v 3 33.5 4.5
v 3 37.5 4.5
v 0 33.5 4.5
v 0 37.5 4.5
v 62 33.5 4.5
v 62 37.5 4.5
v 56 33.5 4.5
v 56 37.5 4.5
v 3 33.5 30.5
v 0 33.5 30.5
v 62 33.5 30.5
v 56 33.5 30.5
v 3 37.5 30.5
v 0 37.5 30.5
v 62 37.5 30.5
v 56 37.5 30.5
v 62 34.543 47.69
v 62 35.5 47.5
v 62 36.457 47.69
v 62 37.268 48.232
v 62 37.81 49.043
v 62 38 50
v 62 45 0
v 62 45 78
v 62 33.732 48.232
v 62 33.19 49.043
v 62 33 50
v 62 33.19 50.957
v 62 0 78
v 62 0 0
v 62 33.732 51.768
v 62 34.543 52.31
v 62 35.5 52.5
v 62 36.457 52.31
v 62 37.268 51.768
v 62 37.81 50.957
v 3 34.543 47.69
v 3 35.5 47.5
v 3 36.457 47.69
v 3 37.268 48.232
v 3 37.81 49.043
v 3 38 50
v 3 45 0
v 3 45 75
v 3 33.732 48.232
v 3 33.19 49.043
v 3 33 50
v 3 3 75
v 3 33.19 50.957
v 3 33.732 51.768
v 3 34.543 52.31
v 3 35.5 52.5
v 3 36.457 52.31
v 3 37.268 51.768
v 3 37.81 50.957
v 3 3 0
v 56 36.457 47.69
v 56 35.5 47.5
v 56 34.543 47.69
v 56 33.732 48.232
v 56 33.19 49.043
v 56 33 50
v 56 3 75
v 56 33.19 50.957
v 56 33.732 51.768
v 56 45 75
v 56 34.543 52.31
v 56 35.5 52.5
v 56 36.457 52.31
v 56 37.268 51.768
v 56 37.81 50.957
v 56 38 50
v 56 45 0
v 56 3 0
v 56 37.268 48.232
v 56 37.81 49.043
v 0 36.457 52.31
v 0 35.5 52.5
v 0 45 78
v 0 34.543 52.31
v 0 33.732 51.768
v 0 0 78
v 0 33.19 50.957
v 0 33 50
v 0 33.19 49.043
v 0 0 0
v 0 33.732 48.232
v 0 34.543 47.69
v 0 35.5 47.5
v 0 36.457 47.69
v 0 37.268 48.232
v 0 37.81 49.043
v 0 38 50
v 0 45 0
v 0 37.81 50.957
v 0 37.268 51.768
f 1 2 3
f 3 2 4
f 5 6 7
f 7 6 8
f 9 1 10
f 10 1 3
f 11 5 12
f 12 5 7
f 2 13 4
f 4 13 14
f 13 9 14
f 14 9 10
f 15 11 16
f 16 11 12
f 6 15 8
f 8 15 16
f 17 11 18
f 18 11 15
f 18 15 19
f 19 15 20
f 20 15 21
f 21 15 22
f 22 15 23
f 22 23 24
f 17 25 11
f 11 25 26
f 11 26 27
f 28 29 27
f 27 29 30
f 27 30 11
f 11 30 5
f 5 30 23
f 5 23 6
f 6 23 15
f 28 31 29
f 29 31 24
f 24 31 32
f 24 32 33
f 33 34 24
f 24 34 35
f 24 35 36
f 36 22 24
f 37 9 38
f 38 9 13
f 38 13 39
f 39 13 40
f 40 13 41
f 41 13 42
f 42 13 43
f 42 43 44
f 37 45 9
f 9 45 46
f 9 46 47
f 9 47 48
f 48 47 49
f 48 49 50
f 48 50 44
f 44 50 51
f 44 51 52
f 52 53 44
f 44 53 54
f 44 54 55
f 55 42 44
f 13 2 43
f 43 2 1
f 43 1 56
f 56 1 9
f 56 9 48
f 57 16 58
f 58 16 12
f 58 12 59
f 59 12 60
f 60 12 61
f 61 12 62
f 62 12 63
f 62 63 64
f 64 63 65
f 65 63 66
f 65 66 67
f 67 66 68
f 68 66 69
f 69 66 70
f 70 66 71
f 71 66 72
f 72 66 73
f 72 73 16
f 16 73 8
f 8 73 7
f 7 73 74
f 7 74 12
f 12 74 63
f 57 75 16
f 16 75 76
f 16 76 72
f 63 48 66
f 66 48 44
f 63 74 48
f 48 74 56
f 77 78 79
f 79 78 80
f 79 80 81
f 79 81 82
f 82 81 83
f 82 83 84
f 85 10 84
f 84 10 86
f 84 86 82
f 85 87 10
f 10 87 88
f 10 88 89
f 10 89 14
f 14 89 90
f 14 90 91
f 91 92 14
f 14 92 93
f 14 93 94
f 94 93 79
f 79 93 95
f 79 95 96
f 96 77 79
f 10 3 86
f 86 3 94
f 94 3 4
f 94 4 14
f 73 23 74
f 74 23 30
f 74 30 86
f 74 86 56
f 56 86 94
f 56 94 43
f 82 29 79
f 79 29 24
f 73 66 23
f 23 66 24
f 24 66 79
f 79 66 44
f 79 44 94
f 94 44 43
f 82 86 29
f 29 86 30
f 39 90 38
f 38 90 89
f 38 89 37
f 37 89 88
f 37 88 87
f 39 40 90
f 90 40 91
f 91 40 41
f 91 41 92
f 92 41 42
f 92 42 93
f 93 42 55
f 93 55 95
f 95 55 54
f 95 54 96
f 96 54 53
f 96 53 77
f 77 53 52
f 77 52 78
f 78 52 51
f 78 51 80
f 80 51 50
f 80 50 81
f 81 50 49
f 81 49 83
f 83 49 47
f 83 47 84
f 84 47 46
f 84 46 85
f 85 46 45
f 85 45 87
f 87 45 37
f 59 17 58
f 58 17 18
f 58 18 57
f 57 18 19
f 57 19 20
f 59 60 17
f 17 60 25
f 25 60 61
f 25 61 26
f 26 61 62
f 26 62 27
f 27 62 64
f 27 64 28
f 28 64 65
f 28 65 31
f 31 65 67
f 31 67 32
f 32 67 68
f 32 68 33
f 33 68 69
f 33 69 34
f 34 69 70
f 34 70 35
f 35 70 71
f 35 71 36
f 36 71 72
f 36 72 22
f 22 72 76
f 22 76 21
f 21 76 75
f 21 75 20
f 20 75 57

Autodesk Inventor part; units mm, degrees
ref_plane "YZ Plane" through (0, 0, 0) normal (1, 0, 0) x (0, 1, 0)
ref_plane "XZ Plane" through (0, 0, 0) normal (0, 1, 0) x (-1, 0, 0)
ref_plane "XY Plane" through (0, 0, 0) normal (0, 0, 1) x (1, 0, 0)
sketch "Sketch2" plane through (0, 0, 0) normal (0, 1, 0) x (-1, 0, 0)
  line L0 (0, 0) -> (-59, 0)
  line L1 (-59, 0) -> (-59, 78)
  line L2 (-59, 78) -> (0, 78)
  line L3 (0, 78) -> (0, 0)
  dimension "d0" = 59
  dimension "d1" = 78
extrude "Extrusion1" add sketch "Sketch2" along normal blind 45
shell "Shell1" thickness 3 removed faces 1 at (39.3333, 45, 52)
sketch "Sketch4" plane through (59, 0, 0) normal (0, 0, -1) x (-1, 0, 0)
  point P0 (59, 0)
sketch "Sketch5" plane through (3, 3, 3) normal (0, 0, 1) x (1, 0, 0)
  line L0 (0, 0) -> (0, 42) projected
  line L1 (0, 42) -> (53, 42) projected
  line L2 (0, 0) -> (53, 0)
  line L3 (53, 0) -> (53, 42)
  line L4 (53, 42) -> (0, 42)
  line L5 (0, 42) -> (0, 0)
  point P0 (-3, -3)
extrude "Extrusion3" cut sketch "Sketch5" against normal blind 10
sketch "Sketch6" plane through (0, 0, 0) normal (-1, 0, 0) x (0, 0, 1)
  line L0 (4.5, 37.5) -> (30.5, 37.5)
  line L1 (30.5, 37.5) -> (30.5, 33.5)
  line L2 (30.5, 33.5) -> (4.5, 33.5)
  line L3 (4.5, 33.5) -> (4.5, 37.5)
  line L4 (0, 0) -> (0, 45) projected
  line L5 (0, 0) -> (78, 0) projected
  dimension "d19" = 26
  dimension "d20" = 4
  dimension "d21" = 4.5
  dimension "d22" = 33.5
sketch "Sketch7" plane through (59, 0, 78) normal (1, 0, 0) x (0, 0, -1)
  line L0 (0, 0) -> (78, 0) projected
  line L1 (0, 45) -> (78, 45)
  line L2 (78, 45) -> (78, 0)
  line L3 (78, 0) -> (0, 0)
  line L4 (0, 0) -> (0, 45)
extrude "Extrusion5" add sketch "Sketch7" along normal blind 3
extrude "Extrusion6" cut sketch "Sketch6" against normal through all
sketch "Sketch8" plane through (0, 0, 0) normal (-1, 0, 0) x (0, 0, 1)
  circle A0 centre (50, 35.5) radius 2.5
  point P0 (0, 0)
  dimension "d29" = 5
extrude "Extrusion7" cut sketch "Sketch8" against normal through all
properties part number "arduino with shield box v05"
